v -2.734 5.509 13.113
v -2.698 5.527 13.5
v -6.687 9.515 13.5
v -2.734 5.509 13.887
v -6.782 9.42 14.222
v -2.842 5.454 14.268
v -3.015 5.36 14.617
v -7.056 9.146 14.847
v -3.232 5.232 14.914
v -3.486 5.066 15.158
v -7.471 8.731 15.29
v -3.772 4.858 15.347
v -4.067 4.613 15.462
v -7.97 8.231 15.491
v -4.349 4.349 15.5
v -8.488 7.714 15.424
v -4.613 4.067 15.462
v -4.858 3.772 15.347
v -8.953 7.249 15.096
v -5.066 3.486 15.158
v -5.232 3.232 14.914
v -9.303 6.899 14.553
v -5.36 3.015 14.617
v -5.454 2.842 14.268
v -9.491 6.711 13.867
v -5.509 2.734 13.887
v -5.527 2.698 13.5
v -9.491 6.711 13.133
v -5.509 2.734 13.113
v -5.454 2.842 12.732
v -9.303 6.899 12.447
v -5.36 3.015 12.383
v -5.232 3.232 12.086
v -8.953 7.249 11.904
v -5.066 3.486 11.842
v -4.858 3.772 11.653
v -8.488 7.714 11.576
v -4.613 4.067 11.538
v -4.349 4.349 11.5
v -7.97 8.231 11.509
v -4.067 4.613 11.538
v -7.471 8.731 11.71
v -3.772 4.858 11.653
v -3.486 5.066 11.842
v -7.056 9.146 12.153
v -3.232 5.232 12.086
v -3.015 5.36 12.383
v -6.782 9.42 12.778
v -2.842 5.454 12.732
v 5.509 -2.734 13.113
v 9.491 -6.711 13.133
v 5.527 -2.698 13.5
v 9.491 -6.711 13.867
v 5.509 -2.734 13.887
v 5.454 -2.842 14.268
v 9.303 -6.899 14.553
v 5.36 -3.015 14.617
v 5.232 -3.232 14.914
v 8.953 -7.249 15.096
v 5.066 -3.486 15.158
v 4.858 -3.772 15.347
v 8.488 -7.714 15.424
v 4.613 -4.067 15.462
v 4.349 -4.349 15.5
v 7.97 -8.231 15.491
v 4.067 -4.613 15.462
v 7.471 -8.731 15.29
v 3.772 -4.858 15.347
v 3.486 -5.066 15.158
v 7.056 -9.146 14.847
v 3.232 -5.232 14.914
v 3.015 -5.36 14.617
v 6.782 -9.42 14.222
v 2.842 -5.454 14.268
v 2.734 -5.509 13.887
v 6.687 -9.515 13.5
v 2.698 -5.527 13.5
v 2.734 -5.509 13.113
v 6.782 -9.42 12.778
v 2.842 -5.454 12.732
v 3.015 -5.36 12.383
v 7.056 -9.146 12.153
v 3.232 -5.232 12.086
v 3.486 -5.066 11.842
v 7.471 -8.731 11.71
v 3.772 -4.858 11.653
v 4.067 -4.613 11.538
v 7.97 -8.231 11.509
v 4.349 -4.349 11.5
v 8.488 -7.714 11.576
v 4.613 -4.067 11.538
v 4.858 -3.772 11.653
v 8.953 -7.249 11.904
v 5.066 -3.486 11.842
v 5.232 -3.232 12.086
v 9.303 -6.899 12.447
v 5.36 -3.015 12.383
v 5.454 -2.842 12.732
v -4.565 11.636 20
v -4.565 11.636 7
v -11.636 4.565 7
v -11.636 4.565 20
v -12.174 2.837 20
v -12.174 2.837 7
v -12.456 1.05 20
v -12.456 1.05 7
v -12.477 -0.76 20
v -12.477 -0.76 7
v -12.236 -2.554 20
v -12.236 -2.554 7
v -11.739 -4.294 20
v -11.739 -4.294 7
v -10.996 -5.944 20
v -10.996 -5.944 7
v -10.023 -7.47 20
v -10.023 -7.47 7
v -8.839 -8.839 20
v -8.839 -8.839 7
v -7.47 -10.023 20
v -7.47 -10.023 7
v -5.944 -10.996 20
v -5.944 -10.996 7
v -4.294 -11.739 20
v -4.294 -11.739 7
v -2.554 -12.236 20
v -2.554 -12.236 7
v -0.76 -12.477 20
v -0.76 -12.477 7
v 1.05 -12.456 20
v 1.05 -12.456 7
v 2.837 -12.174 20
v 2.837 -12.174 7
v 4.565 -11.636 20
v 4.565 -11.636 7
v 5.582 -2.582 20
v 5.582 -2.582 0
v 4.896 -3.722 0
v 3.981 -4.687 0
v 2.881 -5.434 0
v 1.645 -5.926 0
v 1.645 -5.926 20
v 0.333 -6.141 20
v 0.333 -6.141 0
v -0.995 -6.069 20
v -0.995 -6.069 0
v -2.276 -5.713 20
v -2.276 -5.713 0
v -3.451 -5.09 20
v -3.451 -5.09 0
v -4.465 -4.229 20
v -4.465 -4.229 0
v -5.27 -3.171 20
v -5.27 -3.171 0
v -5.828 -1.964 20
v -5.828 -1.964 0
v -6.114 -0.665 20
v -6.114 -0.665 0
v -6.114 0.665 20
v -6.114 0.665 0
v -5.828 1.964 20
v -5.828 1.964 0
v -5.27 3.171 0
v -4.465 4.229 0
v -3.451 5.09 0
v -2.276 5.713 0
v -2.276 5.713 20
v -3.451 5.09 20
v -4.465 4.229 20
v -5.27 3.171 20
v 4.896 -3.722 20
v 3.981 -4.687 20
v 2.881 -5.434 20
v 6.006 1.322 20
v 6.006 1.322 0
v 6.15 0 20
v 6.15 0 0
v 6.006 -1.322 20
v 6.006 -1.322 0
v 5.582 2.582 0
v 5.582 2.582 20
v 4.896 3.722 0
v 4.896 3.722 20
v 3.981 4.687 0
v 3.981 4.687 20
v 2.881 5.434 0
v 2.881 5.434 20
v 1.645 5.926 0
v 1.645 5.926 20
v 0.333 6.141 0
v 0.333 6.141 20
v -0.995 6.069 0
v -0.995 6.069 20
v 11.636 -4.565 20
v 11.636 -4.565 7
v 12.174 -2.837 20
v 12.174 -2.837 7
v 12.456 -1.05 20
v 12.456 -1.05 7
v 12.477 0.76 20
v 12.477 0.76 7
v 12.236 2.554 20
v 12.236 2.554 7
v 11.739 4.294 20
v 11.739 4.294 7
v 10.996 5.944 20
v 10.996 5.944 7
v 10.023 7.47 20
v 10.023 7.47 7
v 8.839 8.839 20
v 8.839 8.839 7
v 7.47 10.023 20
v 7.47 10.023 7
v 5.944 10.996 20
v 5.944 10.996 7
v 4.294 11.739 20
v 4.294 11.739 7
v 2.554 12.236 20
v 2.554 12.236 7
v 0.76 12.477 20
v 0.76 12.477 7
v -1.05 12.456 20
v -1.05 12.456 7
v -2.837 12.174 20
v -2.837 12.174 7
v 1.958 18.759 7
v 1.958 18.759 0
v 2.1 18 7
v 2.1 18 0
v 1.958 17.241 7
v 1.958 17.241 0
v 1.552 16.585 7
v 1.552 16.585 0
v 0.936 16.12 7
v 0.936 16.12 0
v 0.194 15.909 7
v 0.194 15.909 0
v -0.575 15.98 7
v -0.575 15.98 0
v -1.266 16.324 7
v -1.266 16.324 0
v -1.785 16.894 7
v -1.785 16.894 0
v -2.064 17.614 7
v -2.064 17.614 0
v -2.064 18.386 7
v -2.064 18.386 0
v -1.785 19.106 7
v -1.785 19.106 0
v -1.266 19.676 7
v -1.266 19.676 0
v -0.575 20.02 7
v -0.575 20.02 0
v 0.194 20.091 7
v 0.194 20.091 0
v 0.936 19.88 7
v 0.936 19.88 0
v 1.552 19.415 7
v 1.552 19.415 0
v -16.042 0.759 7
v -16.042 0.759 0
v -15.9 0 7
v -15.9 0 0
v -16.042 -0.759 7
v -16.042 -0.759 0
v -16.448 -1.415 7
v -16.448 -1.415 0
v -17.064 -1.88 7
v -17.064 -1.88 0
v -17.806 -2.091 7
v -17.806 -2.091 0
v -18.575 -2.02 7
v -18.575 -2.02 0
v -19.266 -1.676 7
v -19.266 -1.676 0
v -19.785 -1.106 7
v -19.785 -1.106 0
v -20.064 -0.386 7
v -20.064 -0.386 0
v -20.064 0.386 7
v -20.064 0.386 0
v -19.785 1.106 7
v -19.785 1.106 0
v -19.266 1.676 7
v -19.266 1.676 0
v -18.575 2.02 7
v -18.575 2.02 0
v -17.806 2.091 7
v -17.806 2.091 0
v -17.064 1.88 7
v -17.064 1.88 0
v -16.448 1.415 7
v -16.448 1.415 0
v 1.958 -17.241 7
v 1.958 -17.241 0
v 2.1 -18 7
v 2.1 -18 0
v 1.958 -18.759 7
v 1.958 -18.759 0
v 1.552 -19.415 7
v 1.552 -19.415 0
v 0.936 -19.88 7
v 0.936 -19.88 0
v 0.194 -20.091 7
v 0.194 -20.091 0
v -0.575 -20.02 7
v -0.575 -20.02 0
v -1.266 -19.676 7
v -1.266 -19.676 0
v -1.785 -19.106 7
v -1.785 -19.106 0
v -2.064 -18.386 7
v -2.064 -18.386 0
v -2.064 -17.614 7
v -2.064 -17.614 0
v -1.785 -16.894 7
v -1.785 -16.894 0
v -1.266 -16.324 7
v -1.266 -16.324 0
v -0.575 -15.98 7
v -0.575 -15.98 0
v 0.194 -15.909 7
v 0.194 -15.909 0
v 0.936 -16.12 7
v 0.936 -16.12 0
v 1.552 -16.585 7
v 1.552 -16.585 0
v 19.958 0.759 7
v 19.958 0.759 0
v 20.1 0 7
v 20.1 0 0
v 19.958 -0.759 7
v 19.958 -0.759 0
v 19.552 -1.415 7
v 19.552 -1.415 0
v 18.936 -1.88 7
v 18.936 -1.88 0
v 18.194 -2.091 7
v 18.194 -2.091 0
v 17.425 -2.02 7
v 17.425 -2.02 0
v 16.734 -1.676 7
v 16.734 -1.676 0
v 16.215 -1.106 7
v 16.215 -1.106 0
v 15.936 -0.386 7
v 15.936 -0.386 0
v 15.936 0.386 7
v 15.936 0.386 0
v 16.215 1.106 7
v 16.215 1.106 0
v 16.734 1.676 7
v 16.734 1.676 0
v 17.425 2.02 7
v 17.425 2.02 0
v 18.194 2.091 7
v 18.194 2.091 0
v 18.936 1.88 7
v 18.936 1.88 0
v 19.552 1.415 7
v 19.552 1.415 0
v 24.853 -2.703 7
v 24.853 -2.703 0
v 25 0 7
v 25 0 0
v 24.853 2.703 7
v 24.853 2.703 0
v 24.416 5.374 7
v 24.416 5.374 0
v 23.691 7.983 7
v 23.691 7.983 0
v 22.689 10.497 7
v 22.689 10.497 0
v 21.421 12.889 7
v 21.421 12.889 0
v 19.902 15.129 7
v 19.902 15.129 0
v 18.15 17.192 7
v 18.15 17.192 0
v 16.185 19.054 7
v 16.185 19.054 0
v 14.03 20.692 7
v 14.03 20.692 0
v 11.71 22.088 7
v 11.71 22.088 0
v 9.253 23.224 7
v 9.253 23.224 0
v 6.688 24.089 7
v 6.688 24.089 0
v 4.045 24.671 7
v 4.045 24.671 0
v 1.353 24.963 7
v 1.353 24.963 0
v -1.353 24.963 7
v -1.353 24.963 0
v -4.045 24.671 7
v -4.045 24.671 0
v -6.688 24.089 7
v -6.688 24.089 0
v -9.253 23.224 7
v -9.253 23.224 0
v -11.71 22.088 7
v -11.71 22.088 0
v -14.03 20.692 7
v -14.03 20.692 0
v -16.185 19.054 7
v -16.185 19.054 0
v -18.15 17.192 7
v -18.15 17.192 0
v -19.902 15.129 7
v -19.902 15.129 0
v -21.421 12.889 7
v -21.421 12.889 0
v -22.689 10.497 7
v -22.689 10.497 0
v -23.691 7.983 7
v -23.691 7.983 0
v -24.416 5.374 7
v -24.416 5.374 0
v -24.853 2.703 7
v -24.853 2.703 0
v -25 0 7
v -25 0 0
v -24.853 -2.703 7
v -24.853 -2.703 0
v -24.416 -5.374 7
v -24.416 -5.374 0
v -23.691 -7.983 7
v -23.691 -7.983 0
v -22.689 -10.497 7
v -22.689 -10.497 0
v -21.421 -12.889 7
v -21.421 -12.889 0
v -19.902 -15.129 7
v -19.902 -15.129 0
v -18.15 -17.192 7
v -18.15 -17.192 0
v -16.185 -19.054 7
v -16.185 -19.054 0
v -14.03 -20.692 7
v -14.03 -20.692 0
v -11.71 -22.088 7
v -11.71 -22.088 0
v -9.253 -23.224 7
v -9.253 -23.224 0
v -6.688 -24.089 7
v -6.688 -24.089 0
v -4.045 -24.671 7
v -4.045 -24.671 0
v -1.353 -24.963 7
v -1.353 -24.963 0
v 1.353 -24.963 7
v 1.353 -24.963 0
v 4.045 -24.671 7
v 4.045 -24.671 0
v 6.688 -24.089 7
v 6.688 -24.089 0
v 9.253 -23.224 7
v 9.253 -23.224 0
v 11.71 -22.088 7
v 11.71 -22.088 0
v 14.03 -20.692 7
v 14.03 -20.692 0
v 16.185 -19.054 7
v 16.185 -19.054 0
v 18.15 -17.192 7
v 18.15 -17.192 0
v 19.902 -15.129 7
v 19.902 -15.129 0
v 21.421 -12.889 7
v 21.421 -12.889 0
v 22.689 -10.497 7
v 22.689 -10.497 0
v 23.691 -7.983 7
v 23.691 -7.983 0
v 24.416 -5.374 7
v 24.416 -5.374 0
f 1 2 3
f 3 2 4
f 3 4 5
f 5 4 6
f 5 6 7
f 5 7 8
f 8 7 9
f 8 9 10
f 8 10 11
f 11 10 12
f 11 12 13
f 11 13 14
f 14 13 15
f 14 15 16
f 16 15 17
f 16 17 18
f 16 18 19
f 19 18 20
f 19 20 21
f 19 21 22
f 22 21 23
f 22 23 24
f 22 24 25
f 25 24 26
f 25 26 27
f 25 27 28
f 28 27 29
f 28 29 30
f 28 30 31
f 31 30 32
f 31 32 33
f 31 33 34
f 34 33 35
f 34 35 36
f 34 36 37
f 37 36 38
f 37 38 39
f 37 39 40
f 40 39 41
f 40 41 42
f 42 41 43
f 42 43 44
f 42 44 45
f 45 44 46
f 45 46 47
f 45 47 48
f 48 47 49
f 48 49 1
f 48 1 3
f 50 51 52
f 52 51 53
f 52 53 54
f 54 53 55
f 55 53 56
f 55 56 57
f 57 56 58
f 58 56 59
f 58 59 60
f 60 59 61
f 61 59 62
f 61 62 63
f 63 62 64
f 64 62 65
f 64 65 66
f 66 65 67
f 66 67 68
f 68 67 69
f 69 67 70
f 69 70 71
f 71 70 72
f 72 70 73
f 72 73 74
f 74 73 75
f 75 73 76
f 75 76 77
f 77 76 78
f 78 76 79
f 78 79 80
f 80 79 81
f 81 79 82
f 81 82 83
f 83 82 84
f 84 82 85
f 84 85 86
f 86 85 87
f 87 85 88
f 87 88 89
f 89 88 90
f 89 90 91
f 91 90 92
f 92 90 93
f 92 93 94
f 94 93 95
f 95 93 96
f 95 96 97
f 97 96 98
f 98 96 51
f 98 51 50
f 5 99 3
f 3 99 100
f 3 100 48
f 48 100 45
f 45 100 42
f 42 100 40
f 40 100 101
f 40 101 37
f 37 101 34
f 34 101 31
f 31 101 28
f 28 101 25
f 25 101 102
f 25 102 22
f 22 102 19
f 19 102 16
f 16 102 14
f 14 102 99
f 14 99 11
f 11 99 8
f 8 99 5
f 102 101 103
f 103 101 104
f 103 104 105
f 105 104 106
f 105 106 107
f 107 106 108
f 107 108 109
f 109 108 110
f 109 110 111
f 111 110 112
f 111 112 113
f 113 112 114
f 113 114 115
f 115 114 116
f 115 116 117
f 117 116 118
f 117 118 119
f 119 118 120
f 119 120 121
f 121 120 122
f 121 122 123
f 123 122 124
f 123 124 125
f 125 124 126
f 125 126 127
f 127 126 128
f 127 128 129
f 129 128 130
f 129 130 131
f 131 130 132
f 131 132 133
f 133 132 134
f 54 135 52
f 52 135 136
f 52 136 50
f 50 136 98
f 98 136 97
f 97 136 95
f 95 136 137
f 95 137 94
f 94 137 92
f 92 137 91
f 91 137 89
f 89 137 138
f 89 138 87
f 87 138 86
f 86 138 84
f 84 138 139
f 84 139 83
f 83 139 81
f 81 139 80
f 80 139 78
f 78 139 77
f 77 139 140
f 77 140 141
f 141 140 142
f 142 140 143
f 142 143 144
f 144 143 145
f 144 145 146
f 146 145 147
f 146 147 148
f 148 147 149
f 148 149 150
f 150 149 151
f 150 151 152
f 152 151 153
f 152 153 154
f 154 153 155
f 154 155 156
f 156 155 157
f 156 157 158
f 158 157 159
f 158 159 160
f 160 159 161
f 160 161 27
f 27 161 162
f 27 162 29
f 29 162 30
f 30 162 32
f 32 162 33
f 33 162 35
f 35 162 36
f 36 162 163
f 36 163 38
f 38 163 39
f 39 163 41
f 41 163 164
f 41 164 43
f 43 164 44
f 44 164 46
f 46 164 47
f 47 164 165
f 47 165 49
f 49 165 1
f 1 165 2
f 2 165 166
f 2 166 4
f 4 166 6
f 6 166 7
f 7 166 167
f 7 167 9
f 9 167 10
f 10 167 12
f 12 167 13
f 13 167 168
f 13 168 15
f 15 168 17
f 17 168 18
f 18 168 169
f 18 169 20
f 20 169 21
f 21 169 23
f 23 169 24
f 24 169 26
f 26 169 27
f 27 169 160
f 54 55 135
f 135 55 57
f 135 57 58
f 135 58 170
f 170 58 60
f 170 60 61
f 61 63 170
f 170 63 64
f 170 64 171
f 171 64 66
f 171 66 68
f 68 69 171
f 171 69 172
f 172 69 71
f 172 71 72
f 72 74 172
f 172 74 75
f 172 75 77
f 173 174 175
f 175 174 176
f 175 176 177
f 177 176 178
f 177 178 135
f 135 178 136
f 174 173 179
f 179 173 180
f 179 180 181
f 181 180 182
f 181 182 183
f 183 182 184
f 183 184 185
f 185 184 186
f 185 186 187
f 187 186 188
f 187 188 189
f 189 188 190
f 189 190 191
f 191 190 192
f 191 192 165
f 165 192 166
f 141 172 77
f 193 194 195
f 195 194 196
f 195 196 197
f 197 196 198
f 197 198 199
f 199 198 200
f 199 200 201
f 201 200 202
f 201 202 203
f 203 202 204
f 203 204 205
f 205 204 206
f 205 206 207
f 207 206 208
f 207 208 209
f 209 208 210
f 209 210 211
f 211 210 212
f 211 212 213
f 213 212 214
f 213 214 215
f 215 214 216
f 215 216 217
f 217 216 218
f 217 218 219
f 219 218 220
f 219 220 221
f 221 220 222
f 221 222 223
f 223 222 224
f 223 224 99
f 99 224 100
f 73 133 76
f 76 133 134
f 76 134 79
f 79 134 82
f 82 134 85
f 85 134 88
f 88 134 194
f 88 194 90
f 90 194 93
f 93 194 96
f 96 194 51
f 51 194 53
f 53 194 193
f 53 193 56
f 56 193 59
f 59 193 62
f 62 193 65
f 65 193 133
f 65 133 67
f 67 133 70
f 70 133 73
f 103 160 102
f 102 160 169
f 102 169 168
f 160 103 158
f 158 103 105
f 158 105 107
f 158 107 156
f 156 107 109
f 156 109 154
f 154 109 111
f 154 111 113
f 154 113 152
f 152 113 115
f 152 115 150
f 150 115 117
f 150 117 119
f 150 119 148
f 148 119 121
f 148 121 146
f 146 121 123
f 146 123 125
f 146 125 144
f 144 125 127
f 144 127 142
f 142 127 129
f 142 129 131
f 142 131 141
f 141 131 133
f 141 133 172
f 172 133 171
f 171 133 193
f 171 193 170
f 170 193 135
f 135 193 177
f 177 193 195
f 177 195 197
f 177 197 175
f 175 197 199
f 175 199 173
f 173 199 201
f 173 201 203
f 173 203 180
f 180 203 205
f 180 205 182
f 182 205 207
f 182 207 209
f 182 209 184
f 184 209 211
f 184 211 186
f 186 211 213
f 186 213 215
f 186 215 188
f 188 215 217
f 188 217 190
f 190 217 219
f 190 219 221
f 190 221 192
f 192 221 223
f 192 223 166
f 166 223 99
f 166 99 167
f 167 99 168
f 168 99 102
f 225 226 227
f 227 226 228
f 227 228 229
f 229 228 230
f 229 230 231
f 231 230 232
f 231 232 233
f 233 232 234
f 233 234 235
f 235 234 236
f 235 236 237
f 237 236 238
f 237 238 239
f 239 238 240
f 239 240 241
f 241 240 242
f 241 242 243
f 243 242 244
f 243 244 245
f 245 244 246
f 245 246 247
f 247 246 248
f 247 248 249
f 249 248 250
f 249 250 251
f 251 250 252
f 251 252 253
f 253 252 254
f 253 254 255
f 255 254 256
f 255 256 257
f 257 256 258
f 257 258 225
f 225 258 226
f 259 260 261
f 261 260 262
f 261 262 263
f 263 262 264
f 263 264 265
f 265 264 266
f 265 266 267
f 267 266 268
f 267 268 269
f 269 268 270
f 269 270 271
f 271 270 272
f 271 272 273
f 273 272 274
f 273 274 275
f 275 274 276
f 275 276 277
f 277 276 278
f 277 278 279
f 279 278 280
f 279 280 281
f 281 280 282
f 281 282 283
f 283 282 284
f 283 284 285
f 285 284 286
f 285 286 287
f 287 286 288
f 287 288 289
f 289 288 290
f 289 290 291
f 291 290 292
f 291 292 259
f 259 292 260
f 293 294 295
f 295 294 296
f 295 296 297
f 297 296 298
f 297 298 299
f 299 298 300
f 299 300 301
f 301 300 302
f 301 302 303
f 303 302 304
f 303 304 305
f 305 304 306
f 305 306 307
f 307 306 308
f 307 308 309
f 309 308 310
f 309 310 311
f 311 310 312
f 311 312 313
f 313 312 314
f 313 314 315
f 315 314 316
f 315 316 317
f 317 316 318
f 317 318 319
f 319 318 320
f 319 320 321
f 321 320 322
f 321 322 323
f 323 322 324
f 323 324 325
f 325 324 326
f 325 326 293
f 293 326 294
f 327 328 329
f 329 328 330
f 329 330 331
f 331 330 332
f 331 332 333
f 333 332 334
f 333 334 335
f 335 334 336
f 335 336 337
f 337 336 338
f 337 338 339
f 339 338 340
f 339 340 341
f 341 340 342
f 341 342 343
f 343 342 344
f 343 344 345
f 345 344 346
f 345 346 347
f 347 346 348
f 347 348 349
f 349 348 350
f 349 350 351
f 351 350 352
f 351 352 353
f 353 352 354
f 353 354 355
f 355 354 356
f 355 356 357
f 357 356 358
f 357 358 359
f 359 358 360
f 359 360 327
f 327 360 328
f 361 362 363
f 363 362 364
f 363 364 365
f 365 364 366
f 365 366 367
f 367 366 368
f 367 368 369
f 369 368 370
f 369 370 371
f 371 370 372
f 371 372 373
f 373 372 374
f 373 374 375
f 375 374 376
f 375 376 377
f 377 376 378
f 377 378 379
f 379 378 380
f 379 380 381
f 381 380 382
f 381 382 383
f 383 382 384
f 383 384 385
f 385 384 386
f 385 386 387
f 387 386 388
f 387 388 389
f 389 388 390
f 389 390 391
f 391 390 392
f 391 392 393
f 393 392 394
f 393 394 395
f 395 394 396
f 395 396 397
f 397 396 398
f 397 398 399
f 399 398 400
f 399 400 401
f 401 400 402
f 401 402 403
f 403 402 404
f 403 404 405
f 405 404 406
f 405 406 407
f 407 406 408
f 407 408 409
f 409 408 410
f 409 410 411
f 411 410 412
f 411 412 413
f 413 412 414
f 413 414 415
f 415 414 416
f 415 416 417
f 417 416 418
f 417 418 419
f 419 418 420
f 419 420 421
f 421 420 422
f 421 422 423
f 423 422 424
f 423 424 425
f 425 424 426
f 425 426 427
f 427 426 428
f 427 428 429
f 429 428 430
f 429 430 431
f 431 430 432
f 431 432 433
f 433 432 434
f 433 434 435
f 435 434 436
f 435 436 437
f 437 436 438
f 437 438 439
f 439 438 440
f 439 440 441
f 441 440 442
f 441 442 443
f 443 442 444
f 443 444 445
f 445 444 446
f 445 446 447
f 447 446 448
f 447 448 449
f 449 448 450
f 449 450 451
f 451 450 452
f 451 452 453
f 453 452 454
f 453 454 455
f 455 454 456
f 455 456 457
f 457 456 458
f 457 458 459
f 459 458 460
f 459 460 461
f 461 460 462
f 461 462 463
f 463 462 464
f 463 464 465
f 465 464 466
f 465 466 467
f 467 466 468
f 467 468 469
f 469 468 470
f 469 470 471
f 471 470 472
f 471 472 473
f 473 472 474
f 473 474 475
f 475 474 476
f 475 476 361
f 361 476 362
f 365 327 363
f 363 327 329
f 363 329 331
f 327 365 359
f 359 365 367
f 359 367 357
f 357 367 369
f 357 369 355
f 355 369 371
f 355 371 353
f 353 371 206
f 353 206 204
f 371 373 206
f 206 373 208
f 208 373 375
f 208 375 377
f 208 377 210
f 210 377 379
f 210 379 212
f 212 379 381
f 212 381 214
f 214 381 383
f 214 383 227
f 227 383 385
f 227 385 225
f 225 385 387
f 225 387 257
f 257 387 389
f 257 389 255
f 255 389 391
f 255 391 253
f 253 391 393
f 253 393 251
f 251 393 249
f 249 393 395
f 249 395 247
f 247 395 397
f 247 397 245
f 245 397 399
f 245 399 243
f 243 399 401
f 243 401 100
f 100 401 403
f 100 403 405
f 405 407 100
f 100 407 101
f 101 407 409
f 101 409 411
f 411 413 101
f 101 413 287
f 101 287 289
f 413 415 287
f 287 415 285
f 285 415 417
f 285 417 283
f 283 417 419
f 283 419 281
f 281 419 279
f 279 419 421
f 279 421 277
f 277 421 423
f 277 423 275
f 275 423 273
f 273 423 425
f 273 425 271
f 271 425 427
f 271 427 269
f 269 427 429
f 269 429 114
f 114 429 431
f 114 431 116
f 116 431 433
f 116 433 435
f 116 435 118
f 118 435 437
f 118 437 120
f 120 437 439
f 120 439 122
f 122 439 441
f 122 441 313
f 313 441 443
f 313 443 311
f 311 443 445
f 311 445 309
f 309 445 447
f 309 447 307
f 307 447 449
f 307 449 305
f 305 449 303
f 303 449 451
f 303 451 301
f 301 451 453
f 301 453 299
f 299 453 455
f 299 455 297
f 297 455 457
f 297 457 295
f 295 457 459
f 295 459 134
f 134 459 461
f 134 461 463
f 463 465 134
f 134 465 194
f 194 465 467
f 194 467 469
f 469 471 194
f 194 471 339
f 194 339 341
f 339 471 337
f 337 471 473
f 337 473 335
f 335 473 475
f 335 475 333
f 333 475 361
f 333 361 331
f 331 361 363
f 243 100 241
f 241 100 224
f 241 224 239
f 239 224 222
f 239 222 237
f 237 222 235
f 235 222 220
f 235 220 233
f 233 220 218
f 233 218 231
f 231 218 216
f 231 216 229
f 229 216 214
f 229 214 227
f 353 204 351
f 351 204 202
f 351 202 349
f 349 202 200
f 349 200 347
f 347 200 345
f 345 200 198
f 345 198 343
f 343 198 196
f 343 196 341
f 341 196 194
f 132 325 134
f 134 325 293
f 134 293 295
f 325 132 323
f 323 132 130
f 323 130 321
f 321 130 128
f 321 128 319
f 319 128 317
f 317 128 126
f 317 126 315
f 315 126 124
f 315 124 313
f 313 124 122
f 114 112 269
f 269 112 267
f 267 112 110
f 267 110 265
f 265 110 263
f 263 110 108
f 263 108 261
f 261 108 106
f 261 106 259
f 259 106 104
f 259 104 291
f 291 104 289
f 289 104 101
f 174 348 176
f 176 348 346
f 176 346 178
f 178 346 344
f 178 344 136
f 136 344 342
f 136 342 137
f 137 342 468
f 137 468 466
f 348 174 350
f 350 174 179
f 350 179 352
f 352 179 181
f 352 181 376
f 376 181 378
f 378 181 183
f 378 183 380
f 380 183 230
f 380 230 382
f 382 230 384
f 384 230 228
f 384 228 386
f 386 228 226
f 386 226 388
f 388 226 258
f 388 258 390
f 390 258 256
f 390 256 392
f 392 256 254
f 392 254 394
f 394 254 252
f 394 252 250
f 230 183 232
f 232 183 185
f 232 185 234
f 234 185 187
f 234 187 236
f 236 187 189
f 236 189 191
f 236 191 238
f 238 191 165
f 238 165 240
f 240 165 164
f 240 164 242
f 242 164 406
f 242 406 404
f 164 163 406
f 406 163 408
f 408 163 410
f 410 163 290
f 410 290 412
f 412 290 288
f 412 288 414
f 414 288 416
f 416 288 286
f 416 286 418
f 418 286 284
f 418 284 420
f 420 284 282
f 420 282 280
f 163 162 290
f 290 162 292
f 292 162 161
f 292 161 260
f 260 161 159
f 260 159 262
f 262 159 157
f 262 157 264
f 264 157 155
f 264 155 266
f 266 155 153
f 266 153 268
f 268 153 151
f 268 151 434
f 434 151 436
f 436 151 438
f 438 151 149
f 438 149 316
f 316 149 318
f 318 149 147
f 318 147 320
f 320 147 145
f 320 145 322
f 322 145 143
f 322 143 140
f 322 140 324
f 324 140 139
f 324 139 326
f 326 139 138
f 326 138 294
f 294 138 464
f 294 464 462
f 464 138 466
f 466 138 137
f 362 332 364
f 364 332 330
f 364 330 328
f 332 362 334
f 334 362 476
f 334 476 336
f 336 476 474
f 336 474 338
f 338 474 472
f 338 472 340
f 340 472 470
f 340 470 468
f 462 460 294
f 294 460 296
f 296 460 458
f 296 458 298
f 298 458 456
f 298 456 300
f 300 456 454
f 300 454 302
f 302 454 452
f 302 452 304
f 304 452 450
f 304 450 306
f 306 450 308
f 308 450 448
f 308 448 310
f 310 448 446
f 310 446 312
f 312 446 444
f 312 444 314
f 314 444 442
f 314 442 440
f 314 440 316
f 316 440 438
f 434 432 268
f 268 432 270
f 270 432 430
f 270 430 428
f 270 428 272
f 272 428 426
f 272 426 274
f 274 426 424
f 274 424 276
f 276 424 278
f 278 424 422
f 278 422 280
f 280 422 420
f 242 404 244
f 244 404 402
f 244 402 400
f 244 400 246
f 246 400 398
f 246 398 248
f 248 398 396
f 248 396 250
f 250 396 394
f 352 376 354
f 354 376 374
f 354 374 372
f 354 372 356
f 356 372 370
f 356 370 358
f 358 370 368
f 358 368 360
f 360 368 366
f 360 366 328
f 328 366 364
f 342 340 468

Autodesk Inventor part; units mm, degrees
ref_plane "YZ Plane" through (0, 0, 0) normal (1, 0, 0) x (0, 1, 0)
ref_plane "XZ Plane" through (0, 0, 0) normal (0, 1, 0) x (-1, 0, 0)
ref_plane "XY Plane" through (0, 0, 0) normal (0, 0, 1) x (1, 0, 0)
sketch "スケッチ1" plane through (0, 0, 0) normal (0, 0, 1) x (1, 0, 0)
  circle A0 centre (0, 0) radius 25
  circle A1 centre (0, 0) radius 6.15
  circle A2 centre (0, 0) radius 12.5
  line L0 (0, 0) -> (-8.8388, 8.8388)
  line L1 (0, 0) -> (12.5, 0) construction
  line L2 (-8.1009, 8.1009) -> (-4.5654, 11.6365)
  line L3 (-8.1009, 8.1009) -> (-11.6365, 4.5654)
  line L4 (8.1009, -8.1009) -> (4.5654, -11.6365)
  line L5 (8.1009, -8.1009) -> (11.6365, -4.5654)
  circle A3 centre (0, 18) radius 2.1
  circle A4 centre (-18, 0) radius 2.1
  circle A5 centre (0, -18) radius 2.1
  circle A6 centre (18, 0) radius 2.1
  dimension "d0" = 50
  dimension "d1" = 12.3
  dimension "d2" = 25
  dimension "d3" = 135
  dimension "d4" = 5
  dimension "d7" = 360
  dimension "d9" = 18
  dimension "d12" = 360
  dimension "d14" = 4.2
  dimension "d17" = 360
extrude "押し出し1" add sketch "スケッチ1" along normal blind 7 contours A0 | L2 L0 A2 | A2 L4 L5 | L0 L3 A2
extrude "押し出し2" add sketch "スケッチ1" along normal blind 20 contours A2 L5 L4 L3 L2
sketch "スケッチ2" plane through (11.6365, -4.5654, 20) normal (0.7071068, -0.7071068, 0) x (-0.7071068, -0.7071068, 0)
  line L0 (10, 0) -> (0, 0) projected
  point P0 (5, 20)
  point P1 (5, 6.5)
  dimension "d23" = 6.5
hole "穴1" at (8.1009, -8.1009, 13.5) direction (-0.7071068, 0.7071068, 0) diameter 4 end through all
properties part number "TH22_3DP_roller_fixer_sn" material "ABS プラスチック"
